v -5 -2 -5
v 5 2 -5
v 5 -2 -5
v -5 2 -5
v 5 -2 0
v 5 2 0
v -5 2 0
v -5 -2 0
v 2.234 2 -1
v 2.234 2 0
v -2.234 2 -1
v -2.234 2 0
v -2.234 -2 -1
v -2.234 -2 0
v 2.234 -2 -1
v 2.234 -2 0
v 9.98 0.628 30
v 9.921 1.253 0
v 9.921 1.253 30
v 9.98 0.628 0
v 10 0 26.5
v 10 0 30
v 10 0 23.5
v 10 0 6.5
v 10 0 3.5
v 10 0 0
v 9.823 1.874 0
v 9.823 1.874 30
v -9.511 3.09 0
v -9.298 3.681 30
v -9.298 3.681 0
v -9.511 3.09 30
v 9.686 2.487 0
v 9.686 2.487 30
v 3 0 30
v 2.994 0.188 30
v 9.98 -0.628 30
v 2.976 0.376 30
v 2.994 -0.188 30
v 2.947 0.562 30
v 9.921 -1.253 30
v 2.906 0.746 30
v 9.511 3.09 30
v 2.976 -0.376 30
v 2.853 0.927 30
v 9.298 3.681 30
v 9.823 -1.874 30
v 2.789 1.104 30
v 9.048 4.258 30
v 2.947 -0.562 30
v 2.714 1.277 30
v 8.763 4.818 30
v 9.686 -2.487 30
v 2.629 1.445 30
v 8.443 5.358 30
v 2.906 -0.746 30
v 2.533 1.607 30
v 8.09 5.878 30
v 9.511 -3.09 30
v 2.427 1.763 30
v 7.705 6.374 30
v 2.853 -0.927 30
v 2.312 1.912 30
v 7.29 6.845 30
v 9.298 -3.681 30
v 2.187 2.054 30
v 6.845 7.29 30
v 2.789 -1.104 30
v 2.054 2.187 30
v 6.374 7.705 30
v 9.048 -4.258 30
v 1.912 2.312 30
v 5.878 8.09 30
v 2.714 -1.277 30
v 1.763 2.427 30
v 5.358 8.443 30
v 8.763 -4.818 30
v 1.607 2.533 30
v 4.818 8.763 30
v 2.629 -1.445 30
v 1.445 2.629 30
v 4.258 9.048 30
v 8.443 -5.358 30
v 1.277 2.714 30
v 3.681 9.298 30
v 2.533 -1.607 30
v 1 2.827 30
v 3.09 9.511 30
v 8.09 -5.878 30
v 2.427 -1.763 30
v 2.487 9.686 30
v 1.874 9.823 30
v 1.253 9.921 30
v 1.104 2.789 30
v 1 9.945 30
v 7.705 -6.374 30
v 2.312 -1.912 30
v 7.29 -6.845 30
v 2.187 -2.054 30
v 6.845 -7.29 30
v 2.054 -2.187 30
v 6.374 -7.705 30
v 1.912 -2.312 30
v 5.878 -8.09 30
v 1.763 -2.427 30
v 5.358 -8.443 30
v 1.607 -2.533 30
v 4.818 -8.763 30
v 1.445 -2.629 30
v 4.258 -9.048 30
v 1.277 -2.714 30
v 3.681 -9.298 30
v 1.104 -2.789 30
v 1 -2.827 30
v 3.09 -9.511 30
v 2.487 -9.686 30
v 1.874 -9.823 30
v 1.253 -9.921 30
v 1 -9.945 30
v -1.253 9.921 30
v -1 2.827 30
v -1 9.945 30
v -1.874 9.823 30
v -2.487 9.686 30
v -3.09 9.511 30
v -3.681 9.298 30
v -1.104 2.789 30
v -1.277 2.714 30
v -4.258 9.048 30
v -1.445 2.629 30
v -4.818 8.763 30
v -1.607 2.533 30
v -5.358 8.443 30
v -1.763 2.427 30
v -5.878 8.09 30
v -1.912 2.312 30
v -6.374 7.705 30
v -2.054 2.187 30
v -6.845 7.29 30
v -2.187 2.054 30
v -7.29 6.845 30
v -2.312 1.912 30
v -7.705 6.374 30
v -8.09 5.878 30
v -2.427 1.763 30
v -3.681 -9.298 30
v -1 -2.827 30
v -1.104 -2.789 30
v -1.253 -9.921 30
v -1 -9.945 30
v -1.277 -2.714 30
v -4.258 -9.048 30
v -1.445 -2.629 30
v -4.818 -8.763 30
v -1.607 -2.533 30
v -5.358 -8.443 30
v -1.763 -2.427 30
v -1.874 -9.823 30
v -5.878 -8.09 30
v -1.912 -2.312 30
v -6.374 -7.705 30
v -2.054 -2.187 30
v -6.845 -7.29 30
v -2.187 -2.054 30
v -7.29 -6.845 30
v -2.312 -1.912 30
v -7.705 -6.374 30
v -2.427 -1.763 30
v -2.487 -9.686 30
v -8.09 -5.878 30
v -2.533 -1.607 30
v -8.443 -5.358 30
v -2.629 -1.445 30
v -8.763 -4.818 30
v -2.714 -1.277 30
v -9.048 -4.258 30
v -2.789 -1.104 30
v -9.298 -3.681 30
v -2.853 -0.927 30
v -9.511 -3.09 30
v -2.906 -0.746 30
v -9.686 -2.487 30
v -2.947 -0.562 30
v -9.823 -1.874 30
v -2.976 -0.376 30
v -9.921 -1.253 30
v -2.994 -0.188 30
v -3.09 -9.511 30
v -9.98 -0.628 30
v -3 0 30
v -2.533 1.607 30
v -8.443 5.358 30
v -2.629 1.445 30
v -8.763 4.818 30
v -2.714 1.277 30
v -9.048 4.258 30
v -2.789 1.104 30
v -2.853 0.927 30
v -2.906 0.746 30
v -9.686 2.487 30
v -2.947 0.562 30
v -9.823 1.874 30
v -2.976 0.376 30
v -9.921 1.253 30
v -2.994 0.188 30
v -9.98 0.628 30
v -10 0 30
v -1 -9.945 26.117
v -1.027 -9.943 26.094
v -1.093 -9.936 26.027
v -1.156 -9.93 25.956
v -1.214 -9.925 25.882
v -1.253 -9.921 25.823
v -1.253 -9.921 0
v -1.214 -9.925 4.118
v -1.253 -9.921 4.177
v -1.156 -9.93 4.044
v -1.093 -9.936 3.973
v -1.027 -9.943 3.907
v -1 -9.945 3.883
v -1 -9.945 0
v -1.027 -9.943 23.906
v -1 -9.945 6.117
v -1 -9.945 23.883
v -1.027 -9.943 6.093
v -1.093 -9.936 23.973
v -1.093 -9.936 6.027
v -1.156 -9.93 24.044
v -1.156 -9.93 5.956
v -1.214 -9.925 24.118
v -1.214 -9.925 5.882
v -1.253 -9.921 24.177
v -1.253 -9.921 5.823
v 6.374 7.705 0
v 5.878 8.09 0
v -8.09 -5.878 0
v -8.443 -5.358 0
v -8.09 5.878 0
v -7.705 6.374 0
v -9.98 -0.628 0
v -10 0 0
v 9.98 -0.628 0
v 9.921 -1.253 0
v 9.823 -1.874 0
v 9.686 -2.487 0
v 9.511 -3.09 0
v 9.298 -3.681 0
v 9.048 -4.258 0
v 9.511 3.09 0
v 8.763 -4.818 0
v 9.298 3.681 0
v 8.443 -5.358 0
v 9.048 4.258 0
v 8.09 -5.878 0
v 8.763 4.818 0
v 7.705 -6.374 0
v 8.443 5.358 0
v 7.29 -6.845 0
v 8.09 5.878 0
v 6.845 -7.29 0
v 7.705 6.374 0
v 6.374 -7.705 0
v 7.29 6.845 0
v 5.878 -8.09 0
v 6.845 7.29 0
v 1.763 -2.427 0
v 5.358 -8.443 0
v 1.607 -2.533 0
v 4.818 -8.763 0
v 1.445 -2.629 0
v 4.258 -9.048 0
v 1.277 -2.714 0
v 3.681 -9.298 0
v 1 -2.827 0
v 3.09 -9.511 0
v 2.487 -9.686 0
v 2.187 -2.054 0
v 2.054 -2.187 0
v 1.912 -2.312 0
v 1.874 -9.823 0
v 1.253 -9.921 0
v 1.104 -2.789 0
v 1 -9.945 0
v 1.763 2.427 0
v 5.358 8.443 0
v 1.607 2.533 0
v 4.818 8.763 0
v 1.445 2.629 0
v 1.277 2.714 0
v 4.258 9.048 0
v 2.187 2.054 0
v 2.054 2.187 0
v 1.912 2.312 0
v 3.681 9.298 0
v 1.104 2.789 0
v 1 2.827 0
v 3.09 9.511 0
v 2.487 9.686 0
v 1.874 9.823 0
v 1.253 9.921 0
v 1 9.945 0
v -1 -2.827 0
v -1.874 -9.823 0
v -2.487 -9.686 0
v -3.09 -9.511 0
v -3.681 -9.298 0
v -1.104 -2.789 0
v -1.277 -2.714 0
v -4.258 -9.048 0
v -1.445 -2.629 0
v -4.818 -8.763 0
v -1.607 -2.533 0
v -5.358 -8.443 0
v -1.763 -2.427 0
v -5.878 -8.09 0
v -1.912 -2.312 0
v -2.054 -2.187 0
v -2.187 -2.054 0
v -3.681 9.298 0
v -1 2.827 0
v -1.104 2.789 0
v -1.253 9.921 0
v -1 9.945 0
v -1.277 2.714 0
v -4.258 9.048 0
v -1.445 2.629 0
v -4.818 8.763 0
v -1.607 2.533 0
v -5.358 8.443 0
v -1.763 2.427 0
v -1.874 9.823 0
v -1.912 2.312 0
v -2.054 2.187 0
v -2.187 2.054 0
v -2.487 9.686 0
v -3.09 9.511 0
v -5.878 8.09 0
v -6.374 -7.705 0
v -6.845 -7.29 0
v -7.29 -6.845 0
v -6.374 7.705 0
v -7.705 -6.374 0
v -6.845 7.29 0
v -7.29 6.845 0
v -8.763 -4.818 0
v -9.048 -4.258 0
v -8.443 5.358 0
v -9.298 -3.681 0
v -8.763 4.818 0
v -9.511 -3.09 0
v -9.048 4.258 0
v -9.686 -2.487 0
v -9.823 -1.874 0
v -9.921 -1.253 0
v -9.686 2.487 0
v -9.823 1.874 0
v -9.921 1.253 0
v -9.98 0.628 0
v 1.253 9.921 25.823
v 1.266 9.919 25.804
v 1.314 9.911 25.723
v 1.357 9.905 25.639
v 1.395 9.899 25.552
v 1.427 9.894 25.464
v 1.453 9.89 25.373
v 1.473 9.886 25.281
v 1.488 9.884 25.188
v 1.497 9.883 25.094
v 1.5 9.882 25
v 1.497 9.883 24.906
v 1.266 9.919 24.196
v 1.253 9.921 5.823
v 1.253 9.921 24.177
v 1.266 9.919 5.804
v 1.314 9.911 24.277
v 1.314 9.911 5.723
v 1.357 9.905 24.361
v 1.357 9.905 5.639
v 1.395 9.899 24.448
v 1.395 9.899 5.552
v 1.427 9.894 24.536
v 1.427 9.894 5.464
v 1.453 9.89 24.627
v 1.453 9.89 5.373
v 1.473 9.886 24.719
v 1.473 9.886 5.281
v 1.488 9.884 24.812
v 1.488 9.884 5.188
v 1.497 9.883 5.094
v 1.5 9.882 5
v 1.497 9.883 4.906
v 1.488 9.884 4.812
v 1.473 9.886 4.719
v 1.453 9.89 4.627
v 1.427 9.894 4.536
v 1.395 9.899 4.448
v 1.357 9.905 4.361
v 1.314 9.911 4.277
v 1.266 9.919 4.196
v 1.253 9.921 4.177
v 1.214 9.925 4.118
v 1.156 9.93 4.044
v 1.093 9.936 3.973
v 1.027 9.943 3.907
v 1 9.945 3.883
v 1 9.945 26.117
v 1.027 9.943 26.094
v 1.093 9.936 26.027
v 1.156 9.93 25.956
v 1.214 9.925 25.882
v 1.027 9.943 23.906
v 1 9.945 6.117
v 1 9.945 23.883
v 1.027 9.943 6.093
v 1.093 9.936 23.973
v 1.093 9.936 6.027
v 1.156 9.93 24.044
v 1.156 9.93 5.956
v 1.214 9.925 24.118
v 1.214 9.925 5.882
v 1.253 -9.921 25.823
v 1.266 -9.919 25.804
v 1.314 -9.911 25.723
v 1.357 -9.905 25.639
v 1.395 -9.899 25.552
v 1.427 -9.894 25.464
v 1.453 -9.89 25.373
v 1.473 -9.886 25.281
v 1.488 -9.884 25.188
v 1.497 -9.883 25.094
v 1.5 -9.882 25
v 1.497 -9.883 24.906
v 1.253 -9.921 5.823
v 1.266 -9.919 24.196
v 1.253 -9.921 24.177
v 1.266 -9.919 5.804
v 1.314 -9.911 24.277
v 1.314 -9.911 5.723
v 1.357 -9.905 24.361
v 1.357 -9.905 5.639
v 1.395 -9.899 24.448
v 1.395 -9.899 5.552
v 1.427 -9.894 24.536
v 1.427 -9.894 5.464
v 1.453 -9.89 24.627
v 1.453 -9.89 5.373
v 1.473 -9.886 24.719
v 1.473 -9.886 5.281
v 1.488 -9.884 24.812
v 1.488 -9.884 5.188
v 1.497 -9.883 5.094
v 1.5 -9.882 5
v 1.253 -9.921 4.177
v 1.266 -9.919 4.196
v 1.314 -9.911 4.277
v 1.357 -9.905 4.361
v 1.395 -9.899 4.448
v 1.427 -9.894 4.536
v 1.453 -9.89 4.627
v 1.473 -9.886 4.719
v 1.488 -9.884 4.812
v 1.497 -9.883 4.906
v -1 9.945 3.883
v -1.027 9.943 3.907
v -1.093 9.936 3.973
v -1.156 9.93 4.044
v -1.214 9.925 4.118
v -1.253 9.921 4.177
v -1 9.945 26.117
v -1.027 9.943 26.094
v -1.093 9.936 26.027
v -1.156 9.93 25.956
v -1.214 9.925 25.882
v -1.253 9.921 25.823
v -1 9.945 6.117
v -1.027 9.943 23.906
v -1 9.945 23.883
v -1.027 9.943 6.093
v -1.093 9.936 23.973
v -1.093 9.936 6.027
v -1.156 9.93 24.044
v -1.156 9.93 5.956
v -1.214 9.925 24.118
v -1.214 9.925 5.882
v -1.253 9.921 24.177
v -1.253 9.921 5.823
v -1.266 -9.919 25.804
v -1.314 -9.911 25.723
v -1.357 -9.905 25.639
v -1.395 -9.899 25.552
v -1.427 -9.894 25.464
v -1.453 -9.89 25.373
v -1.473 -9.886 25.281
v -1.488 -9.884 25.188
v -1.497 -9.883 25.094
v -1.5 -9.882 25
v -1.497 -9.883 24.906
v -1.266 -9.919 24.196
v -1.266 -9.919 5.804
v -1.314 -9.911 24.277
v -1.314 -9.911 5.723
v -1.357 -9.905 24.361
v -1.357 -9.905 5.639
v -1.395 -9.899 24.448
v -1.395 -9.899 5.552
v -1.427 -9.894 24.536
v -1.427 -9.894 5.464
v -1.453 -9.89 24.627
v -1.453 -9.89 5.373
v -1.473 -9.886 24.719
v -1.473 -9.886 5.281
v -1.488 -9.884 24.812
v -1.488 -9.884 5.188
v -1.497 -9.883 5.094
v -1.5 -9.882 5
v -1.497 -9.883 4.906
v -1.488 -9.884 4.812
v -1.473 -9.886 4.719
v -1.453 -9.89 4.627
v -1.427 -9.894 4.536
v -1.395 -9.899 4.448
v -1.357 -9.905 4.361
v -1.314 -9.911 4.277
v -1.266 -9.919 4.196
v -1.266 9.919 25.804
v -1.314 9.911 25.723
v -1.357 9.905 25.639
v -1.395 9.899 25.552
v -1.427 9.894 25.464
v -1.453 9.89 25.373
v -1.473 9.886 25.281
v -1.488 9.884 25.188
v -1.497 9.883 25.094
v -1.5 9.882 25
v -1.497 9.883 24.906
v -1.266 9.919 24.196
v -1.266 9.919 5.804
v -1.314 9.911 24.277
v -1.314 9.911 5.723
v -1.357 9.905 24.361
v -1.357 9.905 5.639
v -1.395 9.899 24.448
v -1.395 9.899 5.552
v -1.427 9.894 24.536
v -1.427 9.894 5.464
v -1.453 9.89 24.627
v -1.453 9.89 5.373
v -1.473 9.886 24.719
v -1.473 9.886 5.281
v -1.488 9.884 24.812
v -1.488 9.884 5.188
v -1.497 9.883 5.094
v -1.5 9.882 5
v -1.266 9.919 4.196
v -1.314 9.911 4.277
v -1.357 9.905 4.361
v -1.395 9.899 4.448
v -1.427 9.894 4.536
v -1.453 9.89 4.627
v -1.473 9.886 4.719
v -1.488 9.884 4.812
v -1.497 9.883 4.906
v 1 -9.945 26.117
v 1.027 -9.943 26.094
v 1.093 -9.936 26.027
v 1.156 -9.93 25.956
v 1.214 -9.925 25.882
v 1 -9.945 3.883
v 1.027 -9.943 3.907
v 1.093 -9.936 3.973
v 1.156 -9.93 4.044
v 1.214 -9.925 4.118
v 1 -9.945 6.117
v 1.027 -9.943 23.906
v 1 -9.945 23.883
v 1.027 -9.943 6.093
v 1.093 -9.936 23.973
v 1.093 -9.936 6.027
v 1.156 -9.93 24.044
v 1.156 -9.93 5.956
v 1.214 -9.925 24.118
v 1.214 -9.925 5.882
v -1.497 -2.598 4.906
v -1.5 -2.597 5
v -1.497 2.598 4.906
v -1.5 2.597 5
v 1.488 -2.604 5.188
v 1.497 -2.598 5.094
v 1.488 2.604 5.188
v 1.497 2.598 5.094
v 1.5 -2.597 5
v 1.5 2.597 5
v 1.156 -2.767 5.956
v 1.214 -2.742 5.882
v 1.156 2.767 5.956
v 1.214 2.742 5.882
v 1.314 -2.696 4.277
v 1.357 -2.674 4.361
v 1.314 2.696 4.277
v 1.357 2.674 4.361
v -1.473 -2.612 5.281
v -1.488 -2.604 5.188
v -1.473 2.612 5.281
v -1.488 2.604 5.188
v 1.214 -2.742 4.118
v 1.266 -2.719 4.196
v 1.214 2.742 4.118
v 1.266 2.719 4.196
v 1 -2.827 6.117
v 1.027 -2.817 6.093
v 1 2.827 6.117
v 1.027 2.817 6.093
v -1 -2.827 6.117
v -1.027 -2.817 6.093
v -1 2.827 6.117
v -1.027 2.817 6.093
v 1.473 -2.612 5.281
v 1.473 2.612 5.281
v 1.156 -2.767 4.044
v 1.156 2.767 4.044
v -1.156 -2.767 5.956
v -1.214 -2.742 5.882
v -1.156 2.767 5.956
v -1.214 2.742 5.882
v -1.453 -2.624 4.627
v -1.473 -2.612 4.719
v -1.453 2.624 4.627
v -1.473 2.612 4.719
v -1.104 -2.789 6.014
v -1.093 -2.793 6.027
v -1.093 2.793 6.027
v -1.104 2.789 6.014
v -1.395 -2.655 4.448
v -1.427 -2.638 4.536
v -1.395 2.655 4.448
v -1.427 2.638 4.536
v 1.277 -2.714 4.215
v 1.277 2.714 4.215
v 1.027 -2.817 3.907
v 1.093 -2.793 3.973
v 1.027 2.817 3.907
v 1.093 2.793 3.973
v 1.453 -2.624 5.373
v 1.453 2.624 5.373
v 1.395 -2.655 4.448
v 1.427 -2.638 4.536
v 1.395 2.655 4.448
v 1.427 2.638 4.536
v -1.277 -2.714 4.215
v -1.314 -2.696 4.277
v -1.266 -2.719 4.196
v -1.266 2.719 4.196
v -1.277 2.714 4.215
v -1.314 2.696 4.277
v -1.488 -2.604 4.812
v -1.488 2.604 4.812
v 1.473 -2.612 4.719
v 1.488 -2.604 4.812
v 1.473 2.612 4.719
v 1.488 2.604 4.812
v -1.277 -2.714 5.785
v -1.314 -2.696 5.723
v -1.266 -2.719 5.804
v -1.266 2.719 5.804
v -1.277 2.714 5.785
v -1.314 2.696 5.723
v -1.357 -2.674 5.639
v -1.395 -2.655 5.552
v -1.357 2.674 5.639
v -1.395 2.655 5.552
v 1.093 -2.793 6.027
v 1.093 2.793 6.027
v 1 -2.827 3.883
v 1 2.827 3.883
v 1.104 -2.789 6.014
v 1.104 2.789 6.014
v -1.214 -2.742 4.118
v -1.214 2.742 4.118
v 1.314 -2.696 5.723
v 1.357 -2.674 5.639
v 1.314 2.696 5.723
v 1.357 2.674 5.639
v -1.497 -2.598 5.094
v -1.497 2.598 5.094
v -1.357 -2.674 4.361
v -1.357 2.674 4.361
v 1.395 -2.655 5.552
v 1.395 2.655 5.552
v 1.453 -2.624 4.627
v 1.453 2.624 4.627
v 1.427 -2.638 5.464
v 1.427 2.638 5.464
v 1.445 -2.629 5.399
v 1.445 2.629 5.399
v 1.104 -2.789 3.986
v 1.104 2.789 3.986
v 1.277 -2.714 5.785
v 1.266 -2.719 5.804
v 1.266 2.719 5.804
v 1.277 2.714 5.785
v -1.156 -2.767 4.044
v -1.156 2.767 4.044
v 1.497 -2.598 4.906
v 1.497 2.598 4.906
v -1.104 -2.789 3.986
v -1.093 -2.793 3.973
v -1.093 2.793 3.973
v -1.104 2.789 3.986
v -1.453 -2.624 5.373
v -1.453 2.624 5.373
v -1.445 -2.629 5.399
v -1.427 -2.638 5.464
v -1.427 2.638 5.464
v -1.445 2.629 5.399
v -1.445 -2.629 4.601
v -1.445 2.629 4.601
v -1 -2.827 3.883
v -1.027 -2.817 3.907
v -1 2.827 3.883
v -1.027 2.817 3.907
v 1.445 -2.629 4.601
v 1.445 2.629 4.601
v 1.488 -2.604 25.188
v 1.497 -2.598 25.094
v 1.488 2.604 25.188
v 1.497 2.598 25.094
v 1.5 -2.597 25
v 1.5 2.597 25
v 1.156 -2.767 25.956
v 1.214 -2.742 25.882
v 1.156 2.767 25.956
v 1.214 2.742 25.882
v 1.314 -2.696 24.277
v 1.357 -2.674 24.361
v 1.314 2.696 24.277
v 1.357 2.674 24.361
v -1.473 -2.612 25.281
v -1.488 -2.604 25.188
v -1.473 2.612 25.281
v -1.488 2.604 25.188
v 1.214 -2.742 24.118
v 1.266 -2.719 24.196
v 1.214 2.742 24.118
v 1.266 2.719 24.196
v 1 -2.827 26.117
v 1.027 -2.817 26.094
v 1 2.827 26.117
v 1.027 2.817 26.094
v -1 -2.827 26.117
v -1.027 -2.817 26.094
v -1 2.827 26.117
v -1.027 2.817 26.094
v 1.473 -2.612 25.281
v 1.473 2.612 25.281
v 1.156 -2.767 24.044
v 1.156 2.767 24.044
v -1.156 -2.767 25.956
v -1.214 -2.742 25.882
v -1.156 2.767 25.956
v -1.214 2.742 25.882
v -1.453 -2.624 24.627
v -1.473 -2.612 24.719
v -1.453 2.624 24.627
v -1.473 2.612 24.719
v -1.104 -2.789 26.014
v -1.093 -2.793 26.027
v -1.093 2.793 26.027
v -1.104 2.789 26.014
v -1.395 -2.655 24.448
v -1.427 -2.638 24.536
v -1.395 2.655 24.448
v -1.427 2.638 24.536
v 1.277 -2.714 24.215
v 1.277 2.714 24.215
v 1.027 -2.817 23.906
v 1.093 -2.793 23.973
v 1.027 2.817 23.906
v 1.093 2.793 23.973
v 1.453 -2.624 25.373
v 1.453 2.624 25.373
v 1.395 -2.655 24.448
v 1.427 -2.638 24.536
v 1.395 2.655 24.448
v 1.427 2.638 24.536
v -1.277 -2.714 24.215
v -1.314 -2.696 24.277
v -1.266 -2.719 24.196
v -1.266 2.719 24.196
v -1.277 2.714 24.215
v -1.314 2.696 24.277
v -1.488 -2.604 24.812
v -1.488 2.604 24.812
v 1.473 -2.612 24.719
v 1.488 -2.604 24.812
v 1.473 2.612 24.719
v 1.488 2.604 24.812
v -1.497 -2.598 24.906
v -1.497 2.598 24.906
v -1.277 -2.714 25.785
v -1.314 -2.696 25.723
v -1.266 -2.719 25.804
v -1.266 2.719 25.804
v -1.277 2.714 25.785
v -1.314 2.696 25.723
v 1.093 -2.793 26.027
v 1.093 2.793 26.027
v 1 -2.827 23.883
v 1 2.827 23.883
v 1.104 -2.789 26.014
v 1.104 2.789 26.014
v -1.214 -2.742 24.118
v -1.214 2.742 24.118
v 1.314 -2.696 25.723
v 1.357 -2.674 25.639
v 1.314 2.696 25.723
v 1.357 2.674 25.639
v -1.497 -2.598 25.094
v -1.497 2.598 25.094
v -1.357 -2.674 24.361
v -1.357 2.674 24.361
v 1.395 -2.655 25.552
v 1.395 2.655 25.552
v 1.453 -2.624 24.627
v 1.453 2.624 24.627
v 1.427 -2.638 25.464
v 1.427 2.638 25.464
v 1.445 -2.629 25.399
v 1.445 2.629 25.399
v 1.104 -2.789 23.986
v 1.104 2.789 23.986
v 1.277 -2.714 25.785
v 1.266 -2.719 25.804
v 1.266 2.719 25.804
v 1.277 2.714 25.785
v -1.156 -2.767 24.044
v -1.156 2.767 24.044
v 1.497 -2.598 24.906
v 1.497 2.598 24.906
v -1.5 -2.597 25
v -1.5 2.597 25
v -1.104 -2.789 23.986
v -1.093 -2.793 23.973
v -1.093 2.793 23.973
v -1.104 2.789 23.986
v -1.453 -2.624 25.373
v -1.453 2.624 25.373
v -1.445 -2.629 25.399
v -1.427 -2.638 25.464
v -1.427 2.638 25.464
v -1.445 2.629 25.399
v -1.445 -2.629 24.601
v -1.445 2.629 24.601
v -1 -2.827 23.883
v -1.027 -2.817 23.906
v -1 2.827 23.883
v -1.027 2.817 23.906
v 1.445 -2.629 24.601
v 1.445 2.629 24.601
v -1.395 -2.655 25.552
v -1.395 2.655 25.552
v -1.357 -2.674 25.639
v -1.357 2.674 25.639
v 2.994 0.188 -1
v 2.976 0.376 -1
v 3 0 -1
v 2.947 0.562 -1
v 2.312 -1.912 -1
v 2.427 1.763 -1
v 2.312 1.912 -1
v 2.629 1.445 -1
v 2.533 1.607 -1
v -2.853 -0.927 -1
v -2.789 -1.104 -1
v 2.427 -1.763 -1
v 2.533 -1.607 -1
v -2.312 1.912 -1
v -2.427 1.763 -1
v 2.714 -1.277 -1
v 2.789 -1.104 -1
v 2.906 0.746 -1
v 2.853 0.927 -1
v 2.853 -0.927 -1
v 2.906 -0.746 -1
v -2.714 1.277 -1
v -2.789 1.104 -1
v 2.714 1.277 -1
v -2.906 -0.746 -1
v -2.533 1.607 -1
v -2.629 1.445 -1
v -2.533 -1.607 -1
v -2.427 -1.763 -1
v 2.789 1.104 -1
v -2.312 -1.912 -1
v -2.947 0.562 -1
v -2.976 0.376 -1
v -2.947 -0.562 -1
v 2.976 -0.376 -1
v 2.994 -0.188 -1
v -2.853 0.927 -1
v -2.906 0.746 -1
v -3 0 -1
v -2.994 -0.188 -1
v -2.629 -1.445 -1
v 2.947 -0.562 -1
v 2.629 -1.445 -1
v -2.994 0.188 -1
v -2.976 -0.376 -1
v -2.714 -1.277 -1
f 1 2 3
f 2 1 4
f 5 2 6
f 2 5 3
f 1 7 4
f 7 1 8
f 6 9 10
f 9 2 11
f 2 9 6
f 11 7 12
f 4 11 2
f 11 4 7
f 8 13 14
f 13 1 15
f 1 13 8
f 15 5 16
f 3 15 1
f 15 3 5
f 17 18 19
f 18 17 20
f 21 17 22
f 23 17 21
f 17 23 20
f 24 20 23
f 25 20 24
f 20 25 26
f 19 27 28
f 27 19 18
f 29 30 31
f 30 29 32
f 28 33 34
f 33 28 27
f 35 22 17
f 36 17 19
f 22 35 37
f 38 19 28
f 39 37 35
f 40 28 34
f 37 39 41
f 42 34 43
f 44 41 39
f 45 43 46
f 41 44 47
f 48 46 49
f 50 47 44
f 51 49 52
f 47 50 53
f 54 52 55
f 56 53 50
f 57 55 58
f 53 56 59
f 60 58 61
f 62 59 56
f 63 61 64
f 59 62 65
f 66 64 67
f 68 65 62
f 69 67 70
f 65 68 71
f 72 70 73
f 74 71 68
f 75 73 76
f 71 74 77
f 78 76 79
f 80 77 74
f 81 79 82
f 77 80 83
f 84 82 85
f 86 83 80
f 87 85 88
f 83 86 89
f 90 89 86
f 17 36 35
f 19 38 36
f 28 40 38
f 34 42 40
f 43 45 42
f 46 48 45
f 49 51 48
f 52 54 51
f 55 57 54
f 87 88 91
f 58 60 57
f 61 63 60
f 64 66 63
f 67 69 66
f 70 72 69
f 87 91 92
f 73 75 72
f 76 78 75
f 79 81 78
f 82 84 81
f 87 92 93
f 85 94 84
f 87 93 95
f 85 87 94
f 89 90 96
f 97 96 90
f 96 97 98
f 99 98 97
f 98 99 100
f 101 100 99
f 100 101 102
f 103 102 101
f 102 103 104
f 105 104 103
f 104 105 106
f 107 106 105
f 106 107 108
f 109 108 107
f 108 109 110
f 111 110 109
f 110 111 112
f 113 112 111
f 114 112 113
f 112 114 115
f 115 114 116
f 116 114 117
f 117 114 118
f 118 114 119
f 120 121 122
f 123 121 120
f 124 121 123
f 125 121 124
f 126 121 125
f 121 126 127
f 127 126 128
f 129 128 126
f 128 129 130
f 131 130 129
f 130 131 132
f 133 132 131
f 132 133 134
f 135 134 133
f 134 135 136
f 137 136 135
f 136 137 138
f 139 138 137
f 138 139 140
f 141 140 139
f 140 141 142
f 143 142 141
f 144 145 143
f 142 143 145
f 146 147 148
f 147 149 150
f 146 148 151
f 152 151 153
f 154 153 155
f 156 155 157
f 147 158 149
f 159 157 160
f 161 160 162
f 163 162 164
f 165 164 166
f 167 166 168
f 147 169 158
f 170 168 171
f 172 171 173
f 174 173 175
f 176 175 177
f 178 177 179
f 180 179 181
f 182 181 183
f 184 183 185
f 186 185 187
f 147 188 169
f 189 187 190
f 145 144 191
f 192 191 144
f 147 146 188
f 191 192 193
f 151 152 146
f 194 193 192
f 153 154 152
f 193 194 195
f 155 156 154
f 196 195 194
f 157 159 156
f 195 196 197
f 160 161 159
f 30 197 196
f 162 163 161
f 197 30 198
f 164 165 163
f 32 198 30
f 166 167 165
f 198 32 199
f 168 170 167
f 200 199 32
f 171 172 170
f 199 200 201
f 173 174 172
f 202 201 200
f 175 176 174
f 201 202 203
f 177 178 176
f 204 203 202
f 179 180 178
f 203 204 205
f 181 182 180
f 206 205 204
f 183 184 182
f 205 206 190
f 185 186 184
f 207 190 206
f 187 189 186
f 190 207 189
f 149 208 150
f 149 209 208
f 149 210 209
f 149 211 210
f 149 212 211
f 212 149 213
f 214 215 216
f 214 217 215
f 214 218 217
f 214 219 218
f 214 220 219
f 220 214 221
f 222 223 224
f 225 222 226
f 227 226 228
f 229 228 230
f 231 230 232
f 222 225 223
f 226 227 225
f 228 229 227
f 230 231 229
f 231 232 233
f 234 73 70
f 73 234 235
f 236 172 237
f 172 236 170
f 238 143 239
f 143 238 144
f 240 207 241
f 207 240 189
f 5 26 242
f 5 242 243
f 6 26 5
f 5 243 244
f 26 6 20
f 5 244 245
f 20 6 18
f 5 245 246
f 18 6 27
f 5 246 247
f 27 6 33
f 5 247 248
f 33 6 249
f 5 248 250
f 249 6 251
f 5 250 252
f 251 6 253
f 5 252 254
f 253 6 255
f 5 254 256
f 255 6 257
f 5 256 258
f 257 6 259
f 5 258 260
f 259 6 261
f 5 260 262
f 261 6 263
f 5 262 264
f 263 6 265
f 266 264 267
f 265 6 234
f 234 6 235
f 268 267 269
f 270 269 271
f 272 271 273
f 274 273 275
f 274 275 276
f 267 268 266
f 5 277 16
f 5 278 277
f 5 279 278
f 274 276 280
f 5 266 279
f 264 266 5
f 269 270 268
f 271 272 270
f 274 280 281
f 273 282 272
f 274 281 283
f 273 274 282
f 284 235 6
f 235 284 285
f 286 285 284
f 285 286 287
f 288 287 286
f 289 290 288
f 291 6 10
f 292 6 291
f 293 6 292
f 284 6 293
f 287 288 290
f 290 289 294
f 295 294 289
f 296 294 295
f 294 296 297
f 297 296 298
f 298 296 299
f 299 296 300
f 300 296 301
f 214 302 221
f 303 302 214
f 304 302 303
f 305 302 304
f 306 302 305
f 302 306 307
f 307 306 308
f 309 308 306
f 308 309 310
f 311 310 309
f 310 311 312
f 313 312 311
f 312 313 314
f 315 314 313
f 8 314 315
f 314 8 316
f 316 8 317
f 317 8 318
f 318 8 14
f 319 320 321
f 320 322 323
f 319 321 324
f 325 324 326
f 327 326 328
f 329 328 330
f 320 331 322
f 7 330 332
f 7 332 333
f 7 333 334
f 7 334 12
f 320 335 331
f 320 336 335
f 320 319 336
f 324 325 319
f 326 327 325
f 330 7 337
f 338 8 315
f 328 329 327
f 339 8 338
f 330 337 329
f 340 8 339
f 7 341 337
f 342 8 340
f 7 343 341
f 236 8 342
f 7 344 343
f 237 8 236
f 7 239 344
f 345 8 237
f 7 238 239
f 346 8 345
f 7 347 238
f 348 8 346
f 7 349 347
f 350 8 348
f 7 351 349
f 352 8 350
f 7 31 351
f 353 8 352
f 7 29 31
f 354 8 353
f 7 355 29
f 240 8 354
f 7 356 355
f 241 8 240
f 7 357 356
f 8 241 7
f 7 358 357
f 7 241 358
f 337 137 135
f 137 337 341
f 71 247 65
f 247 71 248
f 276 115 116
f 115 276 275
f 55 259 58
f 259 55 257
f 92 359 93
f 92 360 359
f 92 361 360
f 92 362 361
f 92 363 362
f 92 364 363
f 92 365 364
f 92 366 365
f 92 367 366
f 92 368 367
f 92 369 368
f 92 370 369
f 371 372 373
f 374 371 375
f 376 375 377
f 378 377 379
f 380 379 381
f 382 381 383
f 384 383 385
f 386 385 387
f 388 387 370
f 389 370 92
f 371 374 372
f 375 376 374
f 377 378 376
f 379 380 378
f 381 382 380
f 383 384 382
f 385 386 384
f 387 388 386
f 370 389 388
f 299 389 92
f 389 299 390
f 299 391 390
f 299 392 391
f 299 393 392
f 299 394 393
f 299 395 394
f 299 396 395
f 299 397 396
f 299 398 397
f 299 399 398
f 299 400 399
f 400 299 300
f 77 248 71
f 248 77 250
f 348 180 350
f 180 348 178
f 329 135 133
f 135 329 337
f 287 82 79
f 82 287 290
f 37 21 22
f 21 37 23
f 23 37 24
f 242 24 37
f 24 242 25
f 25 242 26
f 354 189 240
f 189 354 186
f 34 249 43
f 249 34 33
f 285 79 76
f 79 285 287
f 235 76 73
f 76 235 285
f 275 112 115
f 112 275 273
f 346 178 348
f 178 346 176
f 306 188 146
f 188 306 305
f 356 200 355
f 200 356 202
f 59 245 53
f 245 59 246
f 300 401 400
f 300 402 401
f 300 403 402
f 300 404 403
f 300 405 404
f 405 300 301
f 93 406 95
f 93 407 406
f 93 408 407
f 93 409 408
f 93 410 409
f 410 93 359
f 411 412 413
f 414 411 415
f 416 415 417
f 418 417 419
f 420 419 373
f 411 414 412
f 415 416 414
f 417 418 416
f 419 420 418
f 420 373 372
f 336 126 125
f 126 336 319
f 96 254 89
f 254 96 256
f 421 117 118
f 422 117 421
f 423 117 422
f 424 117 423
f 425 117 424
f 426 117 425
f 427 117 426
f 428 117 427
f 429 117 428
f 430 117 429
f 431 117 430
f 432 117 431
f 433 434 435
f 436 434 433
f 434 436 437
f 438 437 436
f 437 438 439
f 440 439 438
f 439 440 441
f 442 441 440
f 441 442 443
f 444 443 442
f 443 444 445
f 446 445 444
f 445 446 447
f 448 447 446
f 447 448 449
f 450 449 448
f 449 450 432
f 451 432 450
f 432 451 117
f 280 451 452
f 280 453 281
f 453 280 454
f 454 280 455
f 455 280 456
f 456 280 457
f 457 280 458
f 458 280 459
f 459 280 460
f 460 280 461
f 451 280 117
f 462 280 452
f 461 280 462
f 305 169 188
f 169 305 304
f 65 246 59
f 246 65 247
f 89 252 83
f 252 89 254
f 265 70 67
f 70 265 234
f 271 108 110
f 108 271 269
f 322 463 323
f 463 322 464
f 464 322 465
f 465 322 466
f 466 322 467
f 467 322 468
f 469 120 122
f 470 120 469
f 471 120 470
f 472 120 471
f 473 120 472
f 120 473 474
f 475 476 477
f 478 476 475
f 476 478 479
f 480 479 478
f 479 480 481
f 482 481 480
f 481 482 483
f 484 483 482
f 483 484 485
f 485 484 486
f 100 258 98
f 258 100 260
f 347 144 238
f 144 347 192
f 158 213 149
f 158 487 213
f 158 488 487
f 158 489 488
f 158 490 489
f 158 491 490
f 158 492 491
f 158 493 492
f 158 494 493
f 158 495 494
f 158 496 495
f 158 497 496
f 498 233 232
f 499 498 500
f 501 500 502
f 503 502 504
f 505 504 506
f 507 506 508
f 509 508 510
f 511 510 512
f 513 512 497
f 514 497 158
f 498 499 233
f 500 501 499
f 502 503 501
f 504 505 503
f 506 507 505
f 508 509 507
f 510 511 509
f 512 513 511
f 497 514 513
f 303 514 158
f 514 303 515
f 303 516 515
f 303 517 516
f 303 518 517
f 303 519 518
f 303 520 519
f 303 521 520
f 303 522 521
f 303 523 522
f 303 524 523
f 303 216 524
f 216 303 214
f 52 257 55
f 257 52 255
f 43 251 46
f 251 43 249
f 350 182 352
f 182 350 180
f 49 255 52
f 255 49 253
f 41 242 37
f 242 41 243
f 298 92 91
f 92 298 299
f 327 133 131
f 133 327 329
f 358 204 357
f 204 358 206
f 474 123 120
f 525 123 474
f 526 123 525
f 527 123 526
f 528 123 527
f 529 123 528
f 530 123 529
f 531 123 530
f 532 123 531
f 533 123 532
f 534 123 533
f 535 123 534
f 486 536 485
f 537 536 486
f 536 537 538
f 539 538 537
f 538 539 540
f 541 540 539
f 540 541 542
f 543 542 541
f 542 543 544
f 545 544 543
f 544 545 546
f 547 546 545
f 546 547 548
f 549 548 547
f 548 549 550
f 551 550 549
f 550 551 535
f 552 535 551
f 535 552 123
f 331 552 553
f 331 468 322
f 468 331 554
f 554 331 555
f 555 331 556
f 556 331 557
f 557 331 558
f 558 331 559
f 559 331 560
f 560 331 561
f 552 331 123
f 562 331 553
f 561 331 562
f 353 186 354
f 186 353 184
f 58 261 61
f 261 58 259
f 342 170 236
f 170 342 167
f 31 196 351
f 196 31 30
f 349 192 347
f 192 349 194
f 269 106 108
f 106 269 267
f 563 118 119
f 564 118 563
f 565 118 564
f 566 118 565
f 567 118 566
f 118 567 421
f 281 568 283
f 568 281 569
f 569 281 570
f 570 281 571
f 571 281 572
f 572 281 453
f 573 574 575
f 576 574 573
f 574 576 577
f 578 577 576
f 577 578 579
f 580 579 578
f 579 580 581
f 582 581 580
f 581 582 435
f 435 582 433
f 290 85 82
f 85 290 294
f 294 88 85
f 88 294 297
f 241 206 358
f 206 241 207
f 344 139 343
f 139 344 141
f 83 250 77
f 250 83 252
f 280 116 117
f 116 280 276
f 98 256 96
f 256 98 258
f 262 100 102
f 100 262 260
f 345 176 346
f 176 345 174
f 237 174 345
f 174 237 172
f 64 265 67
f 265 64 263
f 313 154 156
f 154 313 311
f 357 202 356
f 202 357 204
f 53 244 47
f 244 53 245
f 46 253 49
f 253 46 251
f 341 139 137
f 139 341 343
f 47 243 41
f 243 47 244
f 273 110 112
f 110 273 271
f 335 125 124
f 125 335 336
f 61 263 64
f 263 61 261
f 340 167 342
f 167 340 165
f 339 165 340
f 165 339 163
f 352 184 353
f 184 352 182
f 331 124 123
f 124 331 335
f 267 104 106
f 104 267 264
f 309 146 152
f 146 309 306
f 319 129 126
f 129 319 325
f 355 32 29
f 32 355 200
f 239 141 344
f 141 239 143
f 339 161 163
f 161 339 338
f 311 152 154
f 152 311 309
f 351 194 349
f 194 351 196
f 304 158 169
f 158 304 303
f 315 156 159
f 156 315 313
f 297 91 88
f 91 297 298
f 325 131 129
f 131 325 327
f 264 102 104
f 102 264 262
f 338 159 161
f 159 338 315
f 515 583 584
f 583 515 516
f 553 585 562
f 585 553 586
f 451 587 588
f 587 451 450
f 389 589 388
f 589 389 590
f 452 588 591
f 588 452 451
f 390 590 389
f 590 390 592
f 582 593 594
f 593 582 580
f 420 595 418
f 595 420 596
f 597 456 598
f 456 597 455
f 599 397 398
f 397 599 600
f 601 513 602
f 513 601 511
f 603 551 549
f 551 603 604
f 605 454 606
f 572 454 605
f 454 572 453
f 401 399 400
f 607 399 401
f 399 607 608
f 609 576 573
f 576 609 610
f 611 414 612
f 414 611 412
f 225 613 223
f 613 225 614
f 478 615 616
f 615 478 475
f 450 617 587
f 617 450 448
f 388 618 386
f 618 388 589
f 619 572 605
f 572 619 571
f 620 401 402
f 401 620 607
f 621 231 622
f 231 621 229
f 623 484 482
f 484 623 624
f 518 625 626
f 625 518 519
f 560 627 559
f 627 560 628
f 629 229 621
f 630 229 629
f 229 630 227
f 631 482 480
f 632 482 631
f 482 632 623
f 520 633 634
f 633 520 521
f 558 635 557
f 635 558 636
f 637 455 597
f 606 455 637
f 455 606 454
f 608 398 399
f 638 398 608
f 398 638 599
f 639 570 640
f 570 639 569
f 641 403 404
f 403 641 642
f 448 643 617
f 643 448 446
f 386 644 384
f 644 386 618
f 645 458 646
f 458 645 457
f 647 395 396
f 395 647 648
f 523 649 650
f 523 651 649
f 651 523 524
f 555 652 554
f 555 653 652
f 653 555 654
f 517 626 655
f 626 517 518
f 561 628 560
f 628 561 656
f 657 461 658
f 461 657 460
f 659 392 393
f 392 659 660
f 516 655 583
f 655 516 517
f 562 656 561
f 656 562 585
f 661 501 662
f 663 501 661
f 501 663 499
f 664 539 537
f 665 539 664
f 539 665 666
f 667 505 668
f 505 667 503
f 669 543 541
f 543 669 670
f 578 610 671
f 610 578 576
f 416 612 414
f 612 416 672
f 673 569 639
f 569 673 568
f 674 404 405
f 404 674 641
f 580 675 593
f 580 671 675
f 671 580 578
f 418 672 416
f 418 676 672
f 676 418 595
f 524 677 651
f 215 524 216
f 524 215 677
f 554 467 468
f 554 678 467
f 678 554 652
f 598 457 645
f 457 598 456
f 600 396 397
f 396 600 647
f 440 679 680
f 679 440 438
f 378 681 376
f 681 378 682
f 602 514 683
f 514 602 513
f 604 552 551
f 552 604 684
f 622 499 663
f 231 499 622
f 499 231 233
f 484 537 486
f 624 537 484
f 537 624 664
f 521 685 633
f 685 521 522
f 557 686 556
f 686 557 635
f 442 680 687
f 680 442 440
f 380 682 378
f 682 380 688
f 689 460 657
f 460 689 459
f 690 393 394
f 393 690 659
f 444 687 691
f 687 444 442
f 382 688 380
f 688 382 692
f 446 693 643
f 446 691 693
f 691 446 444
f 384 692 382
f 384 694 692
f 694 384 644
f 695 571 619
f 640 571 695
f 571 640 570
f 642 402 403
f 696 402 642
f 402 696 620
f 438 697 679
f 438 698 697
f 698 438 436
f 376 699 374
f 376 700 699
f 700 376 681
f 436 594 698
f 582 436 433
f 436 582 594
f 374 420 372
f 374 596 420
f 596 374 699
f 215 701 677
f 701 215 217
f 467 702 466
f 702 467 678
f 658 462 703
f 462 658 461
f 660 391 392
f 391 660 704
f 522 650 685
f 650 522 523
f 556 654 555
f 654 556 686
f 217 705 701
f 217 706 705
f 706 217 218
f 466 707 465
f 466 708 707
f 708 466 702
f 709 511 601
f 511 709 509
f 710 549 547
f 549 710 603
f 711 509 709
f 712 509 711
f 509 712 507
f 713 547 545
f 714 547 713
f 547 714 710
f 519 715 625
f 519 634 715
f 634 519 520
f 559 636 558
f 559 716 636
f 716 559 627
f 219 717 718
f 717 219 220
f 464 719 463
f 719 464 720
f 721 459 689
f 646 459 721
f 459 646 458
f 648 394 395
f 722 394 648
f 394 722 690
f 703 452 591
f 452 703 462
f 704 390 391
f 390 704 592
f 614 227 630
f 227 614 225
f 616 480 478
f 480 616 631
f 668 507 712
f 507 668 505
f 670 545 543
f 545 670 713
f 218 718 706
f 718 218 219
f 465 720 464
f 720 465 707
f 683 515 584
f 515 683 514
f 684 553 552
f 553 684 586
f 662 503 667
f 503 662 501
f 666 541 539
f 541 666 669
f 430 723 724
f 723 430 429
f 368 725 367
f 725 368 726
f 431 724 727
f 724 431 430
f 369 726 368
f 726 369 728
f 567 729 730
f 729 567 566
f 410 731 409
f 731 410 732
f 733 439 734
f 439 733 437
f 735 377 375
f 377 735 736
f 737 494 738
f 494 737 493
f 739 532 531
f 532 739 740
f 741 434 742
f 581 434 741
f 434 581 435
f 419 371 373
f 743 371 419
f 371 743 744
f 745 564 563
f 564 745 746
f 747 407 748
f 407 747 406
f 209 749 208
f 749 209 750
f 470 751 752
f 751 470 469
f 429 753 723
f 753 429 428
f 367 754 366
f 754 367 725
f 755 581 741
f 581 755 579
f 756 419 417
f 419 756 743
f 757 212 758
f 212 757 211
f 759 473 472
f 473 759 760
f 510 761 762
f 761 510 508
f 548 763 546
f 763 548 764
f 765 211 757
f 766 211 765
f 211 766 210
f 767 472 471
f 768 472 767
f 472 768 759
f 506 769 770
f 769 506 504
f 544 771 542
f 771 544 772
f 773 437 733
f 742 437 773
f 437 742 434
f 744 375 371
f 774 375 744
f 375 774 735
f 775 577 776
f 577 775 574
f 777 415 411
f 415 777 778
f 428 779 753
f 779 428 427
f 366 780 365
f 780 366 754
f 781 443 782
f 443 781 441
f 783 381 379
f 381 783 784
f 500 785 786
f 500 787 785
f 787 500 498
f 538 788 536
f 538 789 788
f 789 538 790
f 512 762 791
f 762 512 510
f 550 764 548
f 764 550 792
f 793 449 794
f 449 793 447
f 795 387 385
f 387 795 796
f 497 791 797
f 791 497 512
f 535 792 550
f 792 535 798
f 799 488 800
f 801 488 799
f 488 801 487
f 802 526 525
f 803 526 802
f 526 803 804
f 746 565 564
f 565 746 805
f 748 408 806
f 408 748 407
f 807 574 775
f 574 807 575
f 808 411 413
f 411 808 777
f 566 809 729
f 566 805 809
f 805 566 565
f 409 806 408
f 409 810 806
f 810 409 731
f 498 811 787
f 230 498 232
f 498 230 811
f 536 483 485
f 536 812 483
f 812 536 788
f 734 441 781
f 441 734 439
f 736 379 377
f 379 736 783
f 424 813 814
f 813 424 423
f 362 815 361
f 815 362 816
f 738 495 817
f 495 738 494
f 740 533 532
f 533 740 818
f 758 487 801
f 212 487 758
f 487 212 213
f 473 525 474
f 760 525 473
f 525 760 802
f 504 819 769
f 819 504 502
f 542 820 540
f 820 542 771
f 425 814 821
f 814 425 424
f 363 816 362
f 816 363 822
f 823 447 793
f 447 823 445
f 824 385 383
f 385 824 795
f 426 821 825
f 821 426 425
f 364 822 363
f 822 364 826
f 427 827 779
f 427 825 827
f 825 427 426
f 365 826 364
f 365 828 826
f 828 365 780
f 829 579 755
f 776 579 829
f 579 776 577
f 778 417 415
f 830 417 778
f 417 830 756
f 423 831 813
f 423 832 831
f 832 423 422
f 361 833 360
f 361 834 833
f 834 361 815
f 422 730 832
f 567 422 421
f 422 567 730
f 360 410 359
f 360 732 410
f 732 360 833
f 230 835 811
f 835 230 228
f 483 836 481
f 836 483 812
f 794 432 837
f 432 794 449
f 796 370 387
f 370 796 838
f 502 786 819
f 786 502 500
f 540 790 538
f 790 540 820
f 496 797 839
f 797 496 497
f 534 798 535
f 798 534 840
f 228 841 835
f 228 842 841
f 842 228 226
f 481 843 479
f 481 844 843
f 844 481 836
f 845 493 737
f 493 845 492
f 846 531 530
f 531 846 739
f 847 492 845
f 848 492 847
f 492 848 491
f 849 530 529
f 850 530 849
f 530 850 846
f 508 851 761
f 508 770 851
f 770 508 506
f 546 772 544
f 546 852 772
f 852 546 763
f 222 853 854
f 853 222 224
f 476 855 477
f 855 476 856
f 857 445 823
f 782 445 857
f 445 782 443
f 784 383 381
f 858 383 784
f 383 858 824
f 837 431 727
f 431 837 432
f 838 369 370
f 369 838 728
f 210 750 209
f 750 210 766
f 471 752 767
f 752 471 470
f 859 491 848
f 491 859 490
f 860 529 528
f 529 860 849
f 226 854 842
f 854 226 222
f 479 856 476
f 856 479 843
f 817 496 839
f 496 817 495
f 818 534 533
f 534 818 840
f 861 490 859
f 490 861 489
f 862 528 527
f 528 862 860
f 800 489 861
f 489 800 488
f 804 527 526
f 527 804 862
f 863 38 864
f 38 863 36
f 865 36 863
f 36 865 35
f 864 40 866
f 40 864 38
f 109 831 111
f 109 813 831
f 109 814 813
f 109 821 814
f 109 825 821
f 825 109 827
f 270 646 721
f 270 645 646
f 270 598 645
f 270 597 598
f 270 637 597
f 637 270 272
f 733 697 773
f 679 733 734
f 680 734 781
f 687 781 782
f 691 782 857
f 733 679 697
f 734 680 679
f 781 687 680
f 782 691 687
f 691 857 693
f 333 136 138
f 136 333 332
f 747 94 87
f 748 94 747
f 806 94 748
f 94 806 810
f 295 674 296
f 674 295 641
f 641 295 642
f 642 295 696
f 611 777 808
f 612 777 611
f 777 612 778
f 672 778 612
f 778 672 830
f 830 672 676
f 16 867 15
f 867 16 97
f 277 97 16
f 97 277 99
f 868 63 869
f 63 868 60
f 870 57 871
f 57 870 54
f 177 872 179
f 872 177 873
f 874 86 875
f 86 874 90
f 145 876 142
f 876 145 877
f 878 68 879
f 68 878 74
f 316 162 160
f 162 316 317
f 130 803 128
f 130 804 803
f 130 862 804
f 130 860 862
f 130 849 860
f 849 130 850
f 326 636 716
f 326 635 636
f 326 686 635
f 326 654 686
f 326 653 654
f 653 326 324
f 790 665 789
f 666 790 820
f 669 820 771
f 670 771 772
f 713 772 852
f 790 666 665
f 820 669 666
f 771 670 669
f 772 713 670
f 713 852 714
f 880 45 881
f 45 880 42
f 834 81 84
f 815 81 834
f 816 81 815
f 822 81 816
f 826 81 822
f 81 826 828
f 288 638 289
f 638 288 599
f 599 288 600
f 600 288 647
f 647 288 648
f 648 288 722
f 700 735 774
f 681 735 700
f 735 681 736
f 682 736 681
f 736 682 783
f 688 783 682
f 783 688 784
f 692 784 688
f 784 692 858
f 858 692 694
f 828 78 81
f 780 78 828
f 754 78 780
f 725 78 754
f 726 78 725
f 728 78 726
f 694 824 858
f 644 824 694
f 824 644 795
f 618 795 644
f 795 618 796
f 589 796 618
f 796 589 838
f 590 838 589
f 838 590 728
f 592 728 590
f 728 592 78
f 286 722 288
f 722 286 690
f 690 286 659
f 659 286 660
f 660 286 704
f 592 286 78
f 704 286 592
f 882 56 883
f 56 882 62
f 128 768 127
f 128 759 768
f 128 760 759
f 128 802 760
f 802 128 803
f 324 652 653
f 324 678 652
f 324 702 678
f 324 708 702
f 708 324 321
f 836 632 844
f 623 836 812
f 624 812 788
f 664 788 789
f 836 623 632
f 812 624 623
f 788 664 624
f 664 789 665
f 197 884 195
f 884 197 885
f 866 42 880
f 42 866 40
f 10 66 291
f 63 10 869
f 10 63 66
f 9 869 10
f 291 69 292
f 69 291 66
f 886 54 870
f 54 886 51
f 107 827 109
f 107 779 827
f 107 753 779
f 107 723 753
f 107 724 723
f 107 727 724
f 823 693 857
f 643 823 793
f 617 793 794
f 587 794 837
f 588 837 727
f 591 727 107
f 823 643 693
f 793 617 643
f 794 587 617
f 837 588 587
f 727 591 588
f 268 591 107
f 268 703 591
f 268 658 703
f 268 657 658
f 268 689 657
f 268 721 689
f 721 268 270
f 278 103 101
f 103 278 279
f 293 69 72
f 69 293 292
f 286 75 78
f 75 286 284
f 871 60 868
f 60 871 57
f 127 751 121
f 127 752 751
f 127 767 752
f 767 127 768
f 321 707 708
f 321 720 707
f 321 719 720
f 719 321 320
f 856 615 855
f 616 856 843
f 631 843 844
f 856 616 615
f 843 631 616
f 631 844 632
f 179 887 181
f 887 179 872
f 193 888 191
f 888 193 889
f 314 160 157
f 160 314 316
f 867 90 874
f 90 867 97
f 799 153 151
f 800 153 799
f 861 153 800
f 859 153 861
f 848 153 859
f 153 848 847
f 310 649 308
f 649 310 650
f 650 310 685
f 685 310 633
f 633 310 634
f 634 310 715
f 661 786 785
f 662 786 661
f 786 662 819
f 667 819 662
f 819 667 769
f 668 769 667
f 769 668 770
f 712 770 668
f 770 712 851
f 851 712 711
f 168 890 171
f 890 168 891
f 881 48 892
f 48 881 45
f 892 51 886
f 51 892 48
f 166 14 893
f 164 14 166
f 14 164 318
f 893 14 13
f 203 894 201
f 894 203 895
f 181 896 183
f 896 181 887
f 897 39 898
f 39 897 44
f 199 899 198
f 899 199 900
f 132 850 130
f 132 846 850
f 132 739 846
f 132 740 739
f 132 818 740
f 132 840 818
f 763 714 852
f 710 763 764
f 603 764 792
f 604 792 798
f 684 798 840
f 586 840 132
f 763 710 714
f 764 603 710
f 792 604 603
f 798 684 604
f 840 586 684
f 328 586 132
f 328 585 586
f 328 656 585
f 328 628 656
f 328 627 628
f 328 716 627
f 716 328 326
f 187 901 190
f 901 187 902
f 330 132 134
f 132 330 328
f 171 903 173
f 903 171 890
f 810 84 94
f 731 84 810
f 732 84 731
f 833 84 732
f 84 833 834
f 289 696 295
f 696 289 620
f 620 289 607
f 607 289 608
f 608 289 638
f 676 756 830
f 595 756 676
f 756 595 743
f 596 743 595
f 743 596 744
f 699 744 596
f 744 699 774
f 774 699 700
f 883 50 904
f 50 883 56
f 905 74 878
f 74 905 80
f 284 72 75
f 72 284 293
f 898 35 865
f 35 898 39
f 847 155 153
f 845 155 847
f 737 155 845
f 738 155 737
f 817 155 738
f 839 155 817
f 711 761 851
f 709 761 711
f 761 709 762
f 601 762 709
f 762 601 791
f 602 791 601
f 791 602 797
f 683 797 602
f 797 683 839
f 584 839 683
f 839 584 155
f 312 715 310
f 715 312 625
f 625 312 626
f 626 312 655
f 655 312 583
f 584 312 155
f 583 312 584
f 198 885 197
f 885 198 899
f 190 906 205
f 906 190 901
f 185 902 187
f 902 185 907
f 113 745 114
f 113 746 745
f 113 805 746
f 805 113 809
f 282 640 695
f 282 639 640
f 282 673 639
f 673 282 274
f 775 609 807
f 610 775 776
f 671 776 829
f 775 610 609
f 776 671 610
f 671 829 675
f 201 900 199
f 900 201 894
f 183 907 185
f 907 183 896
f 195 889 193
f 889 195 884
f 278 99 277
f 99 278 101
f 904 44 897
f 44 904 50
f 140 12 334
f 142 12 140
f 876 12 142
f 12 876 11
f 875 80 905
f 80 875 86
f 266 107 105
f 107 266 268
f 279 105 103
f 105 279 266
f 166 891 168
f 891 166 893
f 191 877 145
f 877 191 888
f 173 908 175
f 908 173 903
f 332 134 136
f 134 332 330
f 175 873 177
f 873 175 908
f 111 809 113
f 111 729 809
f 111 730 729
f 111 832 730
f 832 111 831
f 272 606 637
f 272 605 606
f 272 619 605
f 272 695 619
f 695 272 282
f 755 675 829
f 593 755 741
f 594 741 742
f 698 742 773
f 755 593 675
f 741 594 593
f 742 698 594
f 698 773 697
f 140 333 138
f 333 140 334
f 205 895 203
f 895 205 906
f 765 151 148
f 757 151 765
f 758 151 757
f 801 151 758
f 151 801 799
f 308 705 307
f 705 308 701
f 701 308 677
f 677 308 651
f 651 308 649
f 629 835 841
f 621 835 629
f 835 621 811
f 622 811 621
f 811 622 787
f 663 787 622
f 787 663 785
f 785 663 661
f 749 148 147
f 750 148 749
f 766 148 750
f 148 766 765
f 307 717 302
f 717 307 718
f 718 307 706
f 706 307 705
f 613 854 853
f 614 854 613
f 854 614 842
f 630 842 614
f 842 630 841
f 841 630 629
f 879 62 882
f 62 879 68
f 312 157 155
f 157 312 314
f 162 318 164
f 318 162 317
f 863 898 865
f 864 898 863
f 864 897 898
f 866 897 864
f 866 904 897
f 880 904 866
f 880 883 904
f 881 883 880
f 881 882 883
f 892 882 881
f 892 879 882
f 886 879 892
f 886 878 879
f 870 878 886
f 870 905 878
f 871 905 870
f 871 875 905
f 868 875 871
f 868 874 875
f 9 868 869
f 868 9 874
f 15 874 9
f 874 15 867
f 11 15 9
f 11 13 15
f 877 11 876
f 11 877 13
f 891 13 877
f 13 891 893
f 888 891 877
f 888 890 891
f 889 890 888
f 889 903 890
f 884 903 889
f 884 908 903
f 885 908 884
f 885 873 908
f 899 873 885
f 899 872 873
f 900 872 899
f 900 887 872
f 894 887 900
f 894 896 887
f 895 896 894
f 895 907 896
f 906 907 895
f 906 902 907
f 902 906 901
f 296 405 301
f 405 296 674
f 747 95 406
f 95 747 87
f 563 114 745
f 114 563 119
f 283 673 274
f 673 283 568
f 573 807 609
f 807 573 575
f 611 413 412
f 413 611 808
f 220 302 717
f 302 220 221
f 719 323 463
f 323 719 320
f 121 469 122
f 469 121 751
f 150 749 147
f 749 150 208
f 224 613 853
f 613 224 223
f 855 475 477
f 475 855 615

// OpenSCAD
$fn = 100; // Smoothness

module flexible_coupling() {
    difference() {
        union() {
            // Main body
            cylinder(h = 30, d = 20);

            // Flexible cutouts
            for (i = [0:1]) {
                translate([0, 0, 5 + i * 10])
                    rotate([0, 90, 0])
                        cube([20, 4, 10], center = true);
            }
        }

        // Shaft holes
        translate([0, 0, -1])
            cylinder(h = 32, d = 6);

        // Slit cut
        translate([-1, -10, 0])
            cube([2, 20, 30]);

        // Set screw holes
        for (z = [5, 25]) {
            translate([10, 0, z])
                rotate([0, 90, 0])
                    cylinder(h = 20, d = 3);
        }

        // Side holes (for clamping)
        for (z = [5, 25]) {
            translate([0, 10, z])
                rotate([90, 0, 0])
                    cylinder(h = 20, d = 3);
        }
    }
}

flexible_coupling();
